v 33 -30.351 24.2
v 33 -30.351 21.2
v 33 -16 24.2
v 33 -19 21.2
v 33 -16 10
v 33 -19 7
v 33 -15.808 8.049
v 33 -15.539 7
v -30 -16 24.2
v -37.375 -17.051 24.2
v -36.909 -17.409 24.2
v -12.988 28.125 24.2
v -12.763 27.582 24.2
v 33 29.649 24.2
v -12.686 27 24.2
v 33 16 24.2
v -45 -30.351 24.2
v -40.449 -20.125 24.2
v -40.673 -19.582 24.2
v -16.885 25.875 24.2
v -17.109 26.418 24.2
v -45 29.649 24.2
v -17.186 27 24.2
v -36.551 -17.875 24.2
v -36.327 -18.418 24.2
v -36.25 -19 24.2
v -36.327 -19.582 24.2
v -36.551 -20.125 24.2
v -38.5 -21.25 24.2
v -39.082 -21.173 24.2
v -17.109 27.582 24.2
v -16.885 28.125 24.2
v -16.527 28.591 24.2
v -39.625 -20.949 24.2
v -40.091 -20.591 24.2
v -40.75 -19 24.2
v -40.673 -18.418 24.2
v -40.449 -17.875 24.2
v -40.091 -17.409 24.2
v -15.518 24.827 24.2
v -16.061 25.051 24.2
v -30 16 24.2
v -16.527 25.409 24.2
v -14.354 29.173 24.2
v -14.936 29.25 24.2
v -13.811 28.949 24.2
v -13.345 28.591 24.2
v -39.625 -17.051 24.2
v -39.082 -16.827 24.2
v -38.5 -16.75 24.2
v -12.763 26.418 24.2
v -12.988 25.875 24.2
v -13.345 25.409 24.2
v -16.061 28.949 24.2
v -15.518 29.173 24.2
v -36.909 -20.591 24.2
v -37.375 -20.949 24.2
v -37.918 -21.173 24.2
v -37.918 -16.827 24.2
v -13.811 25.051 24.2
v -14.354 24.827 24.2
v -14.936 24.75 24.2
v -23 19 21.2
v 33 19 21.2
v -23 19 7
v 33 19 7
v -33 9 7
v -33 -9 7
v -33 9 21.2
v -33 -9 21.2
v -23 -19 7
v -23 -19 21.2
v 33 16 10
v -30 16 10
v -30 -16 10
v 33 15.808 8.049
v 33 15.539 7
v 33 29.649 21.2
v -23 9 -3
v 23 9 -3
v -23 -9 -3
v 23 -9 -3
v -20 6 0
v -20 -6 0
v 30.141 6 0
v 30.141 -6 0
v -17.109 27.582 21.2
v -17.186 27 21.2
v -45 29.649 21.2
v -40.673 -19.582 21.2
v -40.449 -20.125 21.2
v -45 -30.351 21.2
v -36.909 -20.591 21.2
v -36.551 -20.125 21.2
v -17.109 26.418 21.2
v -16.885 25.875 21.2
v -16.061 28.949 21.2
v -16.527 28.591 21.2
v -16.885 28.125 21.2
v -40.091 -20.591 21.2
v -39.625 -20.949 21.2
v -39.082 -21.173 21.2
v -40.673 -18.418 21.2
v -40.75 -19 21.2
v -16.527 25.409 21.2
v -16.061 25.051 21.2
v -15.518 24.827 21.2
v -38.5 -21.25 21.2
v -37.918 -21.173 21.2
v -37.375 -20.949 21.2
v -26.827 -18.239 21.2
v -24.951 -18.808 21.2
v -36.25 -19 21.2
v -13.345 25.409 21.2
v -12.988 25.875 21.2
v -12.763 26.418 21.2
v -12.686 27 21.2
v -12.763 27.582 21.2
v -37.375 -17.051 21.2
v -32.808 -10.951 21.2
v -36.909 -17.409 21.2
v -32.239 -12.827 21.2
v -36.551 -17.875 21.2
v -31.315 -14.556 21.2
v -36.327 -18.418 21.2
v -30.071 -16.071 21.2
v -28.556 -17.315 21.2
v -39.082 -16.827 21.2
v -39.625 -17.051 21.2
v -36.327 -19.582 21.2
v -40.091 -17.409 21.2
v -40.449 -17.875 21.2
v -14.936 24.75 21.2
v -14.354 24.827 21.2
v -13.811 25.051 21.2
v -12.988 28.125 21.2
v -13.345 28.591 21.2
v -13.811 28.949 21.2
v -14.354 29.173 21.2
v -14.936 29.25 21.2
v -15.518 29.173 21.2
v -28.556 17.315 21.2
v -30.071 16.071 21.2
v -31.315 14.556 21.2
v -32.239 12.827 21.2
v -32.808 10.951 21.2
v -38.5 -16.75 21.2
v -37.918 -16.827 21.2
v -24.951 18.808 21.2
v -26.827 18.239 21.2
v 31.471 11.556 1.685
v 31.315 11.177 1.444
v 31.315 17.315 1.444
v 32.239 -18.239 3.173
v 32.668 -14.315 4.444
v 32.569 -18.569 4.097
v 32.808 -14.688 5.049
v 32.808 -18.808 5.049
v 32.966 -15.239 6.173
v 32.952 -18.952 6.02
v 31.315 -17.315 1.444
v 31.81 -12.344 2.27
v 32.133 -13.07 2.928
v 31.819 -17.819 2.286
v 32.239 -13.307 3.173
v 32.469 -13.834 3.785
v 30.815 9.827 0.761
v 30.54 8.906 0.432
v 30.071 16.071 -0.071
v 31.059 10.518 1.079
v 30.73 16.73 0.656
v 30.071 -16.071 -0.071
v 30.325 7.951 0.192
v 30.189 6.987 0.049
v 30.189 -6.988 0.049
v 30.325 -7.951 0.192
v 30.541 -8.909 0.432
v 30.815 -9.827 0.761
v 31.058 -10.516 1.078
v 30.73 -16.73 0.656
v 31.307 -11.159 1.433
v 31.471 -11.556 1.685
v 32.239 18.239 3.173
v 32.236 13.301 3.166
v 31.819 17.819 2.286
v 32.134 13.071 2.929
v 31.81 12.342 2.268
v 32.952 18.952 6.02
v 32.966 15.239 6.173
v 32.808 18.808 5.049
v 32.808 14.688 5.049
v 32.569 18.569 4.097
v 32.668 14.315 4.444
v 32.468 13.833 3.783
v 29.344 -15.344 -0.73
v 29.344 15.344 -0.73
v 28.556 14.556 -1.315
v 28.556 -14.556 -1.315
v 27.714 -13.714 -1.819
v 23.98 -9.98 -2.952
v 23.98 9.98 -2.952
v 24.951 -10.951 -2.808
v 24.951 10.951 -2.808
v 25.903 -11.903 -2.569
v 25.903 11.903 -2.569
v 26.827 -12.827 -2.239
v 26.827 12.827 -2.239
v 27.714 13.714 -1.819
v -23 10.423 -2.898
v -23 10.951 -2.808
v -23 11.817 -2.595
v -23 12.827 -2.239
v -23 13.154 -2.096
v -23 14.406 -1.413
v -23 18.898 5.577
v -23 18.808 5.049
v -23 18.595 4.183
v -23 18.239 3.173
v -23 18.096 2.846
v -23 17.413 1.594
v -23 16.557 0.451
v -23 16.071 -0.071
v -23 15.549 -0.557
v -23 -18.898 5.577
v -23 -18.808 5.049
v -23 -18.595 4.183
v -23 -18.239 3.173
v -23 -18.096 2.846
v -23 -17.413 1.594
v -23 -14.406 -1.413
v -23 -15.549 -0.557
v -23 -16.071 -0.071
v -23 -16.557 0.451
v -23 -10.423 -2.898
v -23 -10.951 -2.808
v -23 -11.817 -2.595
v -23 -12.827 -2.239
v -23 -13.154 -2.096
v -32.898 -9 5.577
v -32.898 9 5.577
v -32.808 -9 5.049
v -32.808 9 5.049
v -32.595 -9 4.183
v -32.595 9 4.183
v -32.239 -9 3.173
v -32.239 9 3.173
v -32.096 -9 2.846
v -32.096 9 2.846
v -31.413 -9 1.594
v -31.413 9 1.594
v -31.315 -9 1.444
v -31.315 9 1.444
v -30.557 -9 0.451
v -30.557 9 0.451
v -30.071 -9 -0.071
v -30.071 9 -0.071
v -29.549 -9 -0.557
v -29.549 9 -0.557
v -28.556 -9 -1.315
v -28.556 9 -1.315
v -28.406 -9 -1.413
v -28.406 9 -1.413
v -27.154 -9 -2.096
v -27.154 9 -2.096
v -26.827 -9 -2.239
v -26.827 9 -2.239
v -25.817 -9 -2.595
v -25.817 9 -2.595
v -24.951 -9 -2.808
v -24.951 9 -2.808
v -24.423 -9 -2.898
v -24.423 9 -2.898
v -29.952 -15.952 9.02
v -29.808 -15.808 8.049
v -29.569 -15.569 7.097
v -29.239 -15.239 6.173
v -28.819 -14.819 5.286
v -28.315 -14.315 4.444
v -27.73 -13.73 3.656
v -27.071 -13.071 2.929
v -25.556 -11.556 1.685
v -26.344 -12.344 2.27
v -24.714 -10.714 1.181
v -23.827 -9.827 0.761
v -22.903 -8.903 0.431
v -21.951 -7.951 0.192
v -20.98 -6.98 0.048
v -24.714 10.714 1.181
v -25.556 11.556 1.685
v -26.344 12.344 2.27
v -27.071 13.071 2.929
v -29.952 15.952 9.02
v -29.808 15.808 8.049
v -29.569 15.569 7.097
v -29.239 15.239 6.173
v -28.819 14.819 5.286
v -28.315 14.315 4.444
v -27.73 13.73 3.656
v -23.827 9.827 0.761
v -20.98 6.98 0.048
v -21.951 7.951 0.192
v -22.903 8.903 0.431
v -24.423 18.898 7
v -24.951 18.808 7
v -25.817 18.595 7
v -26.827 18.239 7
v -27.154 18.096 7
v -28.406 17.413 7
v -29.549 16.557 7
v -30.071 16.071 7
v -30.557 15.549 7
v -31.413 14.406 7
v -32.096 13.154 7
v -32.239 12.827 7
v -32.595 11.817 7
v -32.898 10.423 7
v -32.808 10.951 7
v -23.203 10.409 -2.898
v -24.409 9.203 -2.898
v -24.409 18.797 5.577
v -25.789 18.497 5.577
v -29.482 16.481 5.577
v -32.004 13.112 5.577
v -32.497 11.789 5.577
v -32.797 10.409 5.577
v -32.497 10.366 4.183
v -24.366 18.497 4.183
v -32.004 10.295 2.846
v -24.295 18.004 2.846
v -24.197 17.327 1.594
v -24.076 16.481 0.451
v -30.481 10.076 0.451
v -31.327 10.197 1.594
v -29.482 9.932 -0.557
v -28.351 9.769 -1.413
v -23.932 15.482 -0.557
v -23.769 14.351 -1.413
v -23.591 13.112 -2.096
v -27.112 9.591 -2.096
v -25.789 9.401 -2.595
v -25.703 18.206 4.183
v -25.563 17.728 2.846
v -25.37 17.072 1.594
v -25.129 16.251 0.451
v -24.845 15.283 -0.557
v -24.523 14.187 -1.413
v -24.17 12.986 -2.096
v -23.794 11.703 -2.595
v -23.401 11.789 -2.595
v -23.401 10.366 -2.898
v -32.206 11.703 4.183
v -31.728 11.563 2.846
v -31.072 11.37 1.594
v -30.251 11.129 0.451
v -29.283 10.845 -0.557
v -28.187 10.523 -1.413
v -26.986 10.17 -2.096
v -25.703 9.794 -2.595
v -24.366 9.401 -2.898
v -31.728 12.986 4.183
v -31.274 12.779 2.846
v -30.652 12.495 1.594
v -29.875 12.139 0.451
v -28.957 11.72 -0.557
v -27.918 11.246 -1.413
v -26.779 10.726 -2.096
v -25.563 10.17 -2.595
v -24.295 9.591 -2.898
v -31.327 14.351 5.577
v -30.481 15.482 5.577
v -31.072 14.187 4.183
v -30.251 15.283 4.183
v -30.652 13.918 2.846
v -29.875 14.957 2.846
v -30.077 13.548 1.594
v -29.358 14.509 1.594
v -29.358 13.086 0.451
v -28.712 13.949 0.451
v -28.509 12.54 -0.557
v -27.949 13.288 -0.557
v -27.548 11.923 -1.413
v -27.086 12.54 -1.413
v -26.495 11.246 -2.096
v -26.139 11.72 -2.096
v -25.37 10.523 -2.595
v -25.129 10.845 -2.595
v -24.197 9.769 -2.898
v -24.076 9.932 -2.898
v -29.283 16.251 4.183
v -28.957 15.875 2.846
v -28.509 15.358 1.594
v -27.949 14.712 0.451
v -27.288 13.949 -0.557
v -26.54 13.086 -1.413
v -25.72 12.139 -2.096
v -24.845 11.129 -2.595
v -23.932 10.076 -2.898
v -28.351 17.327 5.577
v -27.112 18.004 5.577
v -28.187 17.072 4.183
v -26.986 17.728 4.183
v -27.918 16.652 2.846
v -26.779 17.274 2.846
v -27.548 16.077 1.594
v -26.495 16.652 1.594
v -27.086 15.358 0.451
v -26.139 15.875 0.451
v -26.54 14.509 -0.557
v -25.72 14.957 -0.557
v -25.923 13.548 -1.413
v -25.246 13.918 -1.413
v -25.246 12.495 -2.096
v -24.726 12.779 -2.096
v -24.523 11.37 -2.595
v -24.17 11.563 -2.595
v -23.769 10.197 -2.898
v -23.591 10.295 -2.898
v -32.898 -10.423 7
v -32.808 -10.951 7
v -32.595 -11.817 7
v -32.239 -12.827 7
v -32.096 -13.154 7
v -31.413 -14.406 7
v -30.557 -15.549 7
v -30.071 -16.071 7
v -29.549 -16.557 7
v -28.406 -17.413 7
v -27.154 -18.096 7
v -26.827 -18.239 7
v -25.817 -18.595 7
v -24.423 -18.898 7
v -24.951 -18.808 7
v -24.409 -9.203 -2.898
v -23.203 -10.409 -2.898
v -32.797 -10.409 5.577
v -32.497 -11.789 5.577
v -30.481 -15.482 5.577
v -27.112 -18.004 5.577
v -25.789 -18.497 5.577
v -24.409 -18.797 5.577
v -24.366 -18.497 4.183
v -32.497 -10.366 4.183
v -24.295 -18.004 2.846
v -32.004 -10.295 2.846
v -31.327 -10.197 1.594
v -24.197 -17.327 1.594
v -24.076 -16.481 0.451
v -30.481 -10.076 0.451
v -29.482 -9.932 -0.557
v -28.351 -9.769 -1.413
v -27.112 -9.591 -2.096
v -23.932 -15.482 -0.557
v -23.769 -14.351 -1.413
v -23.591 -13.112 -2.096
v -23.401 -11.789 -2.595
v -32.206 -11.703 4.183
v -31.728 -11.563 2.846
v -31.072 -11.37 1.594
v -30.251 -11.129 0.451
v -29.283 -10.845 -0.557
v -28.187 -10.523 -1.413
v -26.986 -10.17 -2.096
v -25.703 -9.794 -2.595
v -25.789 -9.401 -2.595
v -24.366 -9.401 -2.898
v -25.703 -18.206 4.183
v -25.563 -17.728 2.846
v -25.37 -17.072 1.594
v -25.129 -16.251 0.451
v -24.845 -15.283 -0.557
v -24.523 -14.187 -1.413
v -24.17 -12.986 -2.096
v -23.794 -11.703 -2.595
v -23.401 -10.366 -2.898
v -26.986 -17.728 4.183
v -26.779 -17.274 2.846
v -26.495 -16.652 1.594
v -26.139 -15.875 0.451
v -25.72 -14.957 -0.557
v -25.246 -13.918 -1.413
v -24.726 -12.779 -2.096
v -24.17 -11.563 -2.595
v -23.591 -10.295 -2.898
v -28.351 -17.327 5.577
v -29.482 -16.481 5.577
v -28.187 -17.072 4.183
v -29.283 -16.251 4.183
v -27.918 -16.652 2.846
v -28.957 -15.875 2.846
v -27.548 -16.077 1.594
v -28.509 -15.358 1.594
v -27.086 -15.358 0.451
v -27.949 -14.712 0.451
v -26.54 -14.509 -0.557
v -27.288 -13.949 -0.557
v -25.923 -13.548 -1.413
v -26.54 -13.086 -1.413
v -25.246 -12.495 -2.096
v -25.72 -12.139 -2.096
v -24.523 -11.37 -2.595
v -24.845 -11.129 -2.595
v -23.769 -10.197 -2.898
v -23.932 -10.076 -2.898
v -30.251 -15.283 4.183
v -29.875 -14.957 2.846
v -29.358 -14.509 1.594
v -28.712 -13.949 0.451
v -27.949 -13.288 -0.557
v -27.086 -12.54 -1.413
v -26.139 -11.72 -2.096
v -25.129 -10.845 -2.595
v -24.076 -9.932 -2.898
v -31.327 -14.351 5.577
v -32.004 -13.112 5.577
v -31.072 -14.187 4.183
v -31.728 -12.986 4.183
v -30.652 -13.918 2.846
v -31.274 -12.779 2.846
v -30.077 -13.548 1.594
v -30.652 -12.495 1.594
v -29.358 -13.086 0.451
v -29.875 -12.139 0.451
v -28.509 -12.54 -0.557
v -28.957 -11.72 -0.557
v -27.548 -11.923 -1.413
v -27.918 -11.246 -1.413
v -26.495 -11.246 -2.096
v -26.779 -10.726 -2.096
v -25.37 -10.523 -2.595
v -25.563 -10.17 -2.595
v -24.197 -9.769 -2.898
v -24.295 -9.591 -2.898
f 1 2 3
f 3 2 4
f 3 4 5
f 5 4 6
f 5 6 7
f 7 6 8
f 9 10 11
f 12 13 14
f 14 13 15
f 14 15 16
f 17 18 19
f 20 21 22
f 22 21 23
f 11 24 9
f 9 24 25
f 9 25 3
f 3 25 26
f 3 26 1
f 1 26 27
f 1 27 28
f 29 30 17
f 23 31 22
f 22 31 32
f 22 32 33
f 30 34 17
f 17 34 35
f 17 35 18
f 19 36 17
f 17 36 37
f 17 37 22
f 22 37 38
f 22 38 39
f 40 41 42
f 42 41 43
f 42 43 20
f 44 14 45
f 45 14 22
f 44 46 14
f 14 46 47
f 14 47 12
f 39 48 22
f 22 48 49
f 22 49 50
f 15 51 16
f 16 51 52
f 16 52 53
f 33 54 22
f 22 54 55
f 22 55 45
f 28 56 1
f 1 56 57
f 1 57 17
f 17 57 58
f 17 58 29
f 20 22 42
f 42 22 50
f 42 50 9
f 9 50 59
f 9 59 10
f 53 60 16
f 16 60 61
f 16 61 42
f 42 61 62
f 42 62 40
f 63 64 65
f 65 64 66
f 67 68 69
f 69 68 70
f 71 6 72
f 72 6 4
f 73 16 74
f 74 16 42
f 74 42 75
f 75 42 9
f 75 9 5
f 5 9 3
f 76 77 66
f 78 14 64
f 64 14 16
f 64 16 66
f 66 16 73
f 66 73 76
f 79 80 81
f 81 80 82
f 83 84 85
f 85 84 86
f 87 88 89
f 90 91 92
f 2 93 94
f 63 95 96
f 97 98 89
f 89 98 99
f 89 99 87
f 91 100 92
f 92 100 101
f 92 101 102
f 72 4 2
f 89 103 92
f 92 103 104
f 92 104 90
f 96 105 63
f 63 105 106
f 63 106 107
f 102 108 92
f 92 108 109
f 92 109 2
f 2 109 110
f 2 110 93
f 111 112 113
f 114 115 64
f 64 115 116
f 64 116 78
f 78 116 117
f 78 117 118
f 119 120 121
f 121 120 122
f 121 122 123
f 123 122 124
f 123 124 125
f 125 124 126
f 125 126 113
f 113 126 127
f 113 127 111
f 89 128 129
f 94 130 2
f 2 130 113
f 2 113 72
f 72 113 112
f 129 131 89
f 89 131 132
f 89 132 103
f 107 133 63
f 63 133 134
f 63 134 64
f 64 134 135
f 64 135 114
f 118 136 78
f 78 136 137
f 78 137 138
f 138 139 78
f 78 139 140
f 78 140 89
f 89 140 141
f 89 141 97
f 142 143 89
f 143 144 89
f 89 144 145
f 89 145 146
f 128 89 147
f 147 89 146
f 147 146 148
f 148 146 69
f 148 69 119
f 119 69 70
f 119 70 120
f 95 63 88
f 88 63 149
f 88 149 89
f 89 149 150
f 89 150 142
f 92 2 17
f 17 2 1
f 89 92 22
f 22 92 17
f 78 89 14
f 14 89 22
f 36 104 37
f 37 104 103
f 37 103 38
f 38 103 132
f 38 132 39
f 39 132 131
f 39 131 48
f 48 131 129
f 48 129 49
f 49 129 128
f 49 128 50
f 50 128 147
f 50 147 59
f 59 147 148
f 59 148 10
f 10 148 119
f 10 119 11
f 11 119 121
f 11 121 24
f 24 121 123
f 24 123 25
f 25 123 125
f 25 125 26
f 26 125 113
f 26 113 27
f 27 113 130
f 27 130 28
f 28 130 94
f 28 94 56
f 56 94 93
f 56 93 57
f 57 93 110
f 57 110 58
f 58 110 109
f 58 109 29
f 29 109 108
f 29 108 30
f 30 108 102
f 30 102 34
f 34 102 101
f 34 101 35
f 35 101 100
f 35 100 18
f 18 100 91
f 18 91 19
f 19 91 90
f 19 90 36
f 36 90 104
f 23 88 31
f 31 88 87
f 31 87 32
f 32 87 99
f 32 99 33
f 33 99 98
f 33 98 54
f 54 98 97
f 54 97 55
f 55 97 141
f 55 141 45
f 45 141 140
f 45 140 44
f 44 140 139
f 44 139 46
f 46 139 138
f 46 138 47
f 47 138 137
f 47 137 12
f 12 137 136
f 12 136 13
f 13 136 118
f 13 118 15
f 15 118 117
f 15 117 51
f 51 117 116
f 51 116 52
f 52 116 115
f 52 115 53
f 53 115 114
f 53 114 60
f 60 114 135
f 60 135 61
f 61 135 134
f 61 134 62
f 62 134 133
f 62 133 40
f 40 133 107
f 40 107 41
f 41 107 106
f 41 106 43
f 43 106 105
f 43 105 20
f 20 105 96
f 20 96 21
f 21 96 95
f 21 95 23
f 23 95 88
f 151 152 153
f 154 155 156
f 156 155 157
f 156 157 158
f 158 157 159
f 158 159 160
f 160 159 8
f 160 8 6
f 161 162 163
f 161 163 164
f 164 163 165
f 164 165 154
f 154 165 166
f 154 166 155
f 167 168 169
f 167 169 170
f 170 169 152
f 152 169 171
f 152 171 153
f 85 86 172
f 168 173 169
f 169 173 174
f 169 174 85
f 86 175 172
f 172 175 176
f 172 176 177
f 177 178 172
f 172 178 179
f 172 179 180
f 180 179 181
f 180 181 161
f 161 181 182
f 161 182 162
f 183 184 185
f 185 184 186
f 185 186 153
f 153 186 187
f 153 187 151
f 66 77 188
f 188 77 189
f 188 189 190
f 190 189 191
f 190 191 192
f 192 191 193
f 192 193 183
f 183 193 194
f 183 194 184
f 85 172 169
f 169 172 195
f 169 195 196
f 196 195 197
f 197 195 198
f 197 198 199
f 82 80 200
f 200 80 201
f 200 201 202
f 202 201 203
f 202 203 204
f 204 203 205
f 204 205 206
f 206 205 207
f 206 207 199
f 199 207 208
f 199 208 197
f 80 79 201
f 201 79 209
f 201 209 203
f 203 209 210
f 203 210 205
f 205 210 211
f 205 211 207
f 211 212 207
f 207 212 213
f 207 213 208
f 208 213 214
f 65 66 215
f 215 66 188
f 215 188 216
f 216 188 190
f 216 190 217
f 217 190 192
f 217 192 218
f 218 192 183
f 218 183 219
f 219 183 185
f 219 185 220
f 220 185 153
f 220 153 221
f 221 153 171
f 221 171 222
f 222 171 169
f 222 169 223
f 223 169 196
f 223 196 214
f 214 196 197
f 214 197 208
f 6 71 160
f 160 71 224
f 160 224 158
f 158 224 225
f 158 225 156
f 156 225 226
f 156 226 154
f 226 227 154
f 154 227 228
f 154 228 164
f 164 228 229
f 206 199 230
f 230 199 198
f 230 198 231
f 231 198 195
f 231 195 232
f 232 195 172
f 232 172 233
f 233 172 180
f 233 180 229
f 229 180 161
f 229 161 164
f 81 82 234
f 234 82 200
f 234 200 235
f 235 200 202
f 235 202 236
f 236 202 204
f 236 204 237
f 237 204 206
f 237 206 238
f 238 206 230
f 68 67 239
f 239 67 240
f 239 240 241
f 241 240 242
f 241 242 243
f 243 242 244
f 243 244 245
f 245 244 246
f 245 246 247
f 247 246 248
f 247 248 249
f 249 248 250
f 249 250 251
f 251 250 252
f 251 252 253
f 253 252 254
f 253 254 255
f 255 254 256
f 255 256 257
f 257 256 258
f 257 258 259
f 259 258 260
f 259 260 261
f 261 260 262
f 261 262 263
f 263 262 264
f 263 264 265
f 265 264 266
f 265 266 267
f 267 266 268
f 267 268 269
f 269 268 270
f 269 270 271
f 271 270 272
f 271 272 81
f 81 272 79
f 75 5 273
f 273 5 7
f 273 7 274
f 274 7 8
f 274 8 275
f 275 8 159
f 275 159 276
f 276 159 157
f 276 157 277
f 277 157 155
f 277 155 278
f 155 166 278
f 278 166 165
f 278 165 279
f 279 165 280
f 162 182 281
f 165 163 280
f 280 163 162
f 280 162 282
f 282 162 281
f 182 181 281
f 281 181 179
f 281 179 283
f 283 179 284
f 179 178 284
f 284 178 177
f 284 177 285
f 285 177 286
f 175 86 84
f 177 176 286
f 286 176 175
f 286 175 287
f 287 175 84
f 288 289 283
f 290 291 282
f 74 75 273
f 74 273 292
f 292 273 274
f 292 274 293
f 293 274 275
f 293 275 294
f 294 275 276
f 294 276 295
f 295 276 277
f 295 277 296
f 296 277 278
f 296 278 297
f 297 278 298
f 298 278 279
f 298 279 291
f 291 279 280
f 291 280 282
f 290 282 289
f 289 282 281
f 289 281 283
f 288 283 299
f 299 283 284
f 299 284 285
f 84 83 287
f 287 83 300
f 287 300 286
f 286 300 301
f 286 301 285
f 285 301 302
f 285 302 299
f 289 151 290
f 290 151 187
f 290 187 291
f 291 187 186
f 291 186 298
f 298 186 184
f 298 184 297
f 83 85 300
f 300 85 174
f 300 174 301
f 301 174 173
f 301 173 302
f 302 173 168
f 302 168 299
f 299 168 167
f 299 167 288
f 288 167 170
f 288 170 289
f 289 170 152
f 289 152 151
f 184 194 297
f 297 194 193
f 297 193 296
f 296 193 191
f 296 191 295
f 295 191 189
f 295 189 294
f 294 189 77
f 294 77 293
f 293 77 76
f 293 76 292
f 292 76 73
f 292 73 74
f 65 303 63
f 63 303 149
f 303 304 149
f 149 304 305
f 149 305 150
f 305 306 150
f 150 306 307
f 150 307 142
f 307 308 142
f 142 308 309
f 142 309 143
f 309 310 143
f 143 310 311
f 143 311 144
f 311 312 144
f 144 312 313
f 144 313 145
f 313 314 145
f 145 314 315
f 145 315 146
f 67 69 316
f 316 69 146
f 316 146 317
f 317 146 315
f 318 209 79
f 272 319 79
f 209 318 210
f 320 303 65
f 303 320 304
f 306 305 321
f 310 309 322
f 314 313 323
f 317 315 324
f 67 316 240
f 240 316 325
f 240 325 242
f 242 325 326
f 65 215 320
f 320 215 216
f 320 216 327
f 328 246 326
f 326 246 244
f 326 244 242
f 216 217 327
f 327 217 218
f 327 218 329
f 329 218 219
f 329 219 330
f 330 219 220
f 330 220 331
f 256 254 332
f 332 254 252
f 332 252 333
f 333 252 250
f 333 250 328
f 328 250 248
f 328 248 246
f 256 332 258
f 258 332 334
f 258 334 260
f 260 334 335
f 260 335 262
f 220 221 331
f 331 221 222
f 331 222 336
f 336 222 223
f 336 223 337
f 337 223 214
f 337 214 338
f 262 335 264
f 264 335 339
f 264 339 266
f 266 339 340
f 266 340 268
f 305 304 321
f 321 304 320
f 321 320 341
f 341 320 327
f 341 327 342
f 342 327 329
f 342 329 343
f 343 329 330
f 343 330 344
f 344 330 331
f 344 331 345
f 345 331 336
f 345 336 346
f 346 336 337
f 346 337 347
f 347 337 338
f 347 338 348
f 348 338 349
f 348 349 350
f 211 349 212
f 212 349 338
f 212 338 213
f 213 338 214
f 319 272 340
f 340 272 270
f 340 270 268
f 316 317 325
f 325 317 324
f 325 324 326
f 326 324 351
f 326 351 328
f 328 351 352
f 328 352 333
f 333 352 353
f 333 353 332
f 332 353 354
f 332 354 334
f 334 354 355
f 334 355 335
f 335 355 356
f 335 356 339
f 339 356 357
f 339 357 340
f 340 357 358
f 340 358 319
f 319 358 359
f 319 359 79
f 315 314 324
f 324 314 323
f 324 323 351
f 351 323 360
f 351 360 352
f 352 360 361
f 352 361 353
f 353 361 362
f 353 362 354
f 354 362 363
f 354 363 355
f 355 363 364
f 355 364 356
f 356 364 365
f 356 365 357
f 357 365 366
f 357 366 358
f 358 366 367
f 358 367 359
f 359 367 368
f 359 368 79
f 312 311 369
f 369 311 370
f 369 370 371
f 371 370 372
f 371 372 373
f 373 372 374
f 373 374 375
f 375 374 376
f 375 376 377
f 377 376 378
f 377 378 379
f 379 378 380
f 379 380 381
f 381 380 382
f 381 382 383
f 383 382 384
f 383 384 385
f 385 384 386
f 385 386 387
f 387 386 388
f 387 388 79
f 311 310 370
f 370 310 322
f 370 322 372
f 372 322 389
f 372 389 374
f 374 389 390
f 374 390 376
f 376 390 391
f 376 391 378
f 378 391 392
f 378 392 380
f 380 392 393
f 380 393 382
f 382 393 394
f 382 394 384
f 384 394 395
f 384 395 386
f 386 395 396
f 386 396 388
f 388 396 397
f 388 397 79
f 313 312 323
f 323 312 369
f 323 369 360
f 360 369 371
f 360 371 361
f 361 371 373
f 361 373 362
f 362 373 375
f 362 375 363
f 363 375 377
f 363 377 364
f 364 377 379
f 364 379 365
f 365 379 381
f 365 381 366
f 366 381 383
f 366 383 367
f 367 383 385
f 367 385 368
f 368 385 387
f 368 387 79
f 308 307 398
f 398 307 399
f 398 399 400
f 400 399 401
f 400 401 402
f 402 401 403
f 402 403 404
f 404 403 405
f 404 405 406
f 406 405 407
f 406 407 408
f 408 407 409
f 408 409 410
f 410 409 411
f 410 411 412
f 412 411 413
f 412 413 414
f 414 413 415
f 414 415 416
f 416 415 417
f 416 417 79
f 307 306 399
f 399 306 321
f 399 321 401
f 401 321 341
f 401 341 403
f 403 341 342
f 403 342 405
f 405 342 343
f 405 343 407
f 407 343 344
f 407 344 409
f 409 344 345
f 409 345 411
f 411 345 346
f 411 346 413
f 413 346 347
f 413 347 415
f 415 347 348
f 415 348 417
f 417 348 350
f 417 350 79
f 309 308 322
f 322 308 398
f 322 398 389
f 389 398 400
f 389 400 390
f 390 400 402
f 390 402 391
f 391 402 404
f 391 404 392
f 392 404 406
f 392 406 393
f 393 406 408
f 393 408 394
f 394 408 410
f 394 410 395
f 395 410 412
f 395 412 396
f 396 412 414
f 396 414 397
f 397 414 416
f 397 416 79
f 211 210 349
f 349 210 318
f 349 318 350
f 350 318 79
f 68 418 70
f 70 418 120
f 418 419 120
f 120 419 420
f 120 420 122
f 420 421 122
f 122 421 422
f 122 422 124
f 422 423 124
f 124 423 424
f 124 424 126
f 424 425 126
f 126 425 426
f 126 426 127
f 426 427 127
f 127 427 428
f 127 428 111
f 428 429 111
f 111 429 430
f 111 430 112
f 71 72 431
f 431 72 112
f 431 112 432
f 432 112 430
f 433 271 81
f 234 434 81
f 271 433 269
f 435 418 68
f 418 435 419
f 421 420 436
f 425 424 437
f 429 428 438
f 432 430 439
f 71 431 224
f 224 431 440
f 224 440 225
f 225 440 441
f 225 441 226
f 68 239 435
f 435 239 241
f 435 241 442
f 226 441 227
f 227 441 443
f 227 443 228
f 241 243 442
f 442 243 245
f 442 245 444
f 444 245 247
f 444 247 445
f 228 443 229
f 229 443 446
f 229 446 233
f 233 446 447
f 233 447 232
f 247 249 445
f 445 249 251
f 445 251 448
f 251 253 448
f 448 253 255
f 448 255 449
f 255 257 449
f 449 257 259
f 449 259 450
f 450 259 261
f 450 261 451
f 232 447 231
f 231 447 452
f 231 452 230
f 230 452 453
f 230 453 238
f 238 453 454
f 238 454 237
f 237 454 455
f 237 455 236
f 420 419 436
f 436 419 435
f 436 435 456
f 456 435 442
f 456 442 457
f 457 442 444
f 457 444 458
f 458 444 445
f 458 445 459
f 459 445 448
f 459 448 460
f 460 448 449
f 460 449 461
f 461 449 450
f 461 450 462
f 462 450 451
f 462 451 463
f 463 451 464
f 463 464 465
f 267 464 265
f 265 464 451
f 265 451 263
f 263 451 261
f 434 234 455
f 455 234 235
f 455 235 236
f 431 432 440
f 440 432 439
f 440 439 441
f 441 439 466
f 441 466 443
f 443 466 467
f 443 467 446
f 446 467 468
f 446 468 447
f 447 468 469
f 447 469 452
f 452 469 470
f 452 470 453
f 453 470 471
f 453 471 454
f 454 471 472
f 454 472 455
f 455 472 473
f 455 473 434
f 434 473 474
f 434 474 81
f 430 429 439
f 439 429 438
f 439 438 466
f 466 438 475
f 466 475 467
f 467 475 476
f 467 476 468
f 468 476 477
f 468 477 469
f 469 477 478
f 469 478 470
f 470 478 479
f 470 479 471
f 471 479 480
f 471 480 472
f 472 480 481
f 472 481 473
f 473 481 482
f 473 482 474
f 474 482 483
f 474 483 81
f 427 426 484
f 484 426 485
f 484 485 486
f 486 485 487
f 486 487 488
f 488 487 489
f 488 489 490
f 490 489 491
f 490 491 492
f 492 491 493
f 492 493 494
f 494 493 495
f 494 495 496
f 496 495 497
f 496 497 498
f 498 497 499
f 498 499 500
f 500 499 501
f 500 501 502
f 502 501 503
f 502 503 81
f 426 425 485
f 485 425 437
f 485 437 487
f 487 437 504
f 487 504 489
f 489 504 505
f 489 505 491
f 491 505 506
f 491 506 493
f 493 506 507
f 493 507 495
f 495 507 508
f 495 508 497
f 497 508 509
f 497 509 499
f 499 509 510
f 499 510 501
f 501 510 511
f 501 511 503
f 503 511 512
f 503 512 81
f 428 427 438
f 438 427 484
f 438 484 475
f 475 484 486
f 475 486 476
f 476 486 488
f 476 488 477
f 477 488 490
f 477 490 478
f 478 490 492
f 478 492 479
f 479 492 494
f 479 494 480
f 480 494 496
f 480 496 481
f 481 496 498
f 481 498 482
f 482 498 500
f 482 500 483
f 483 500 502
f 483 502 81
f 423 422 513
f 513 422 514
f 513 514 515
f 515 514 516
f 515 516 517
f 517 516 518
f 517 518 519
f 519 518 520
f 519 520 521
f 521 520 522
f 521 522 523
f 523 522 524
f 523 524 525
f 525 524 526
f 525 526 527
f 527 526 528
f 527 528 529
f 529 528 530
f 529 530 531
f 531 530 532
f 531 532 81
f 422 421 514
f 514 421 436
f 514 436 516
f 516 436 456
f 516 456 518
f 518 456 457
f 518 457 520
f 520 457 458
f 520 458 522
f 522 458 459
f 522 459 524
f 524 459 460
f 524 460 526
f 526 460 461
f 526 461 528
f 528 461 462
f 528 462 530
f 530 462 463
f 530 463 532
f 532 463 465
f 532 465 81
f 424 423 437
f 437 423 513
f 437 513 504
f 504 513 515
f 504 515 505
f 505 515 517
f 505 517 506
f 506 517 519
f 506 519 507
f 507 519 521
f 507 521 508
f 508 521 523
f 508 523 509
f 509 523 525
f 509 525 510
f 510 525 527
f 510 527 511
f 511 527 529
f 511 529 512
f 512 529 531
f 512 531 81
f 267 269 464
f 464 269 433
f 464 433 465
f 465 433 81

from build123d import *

# Parameters (mm, degrees)
SKETCH1_W           = 32
SKETCH1_H           = 60
BOSS_EXTRUDE1_DEPTH = 24.2
SHELL1_T            = 3
SKETCH3_W           = 3
SKETCH3_H           = 32
CUT_EXTRUDE1_DEPTH  = 24.2
BOSS_EXTRUDE2_START = 24.2
SKETCH4_W           = 60
SKETCH4_H           = 78
BOSS_EXTRUDE2_DEPTH = 3
CUT_EXTRUDE2_DEPTH  = 3
SKETCH6_R           = 2.25
CUT_EXTRUDE3_DEPTH  = 3
FILLET2_R           = 10
FILLET3_R           = 10
FILLET4_R           = 10


with BuildPart() as part:
    # Sketch1 → Boss-Extrude1 (new body)
    with BuildSketch(Plane(origin=(0, 0, 0), x_dir=(0, 1, 0), z_dir=(0, 0, 1))):
        Rectangle(SKETCH1_W, SKETCH1_H)
    extrude(amount=BOSS_EXTRUDE1_DEPTH)

    # Shell1
    shell1_openings = [part.faces().sort_by_distance(p)[0] for p in [
        (0, 0, 24.2),
    ]]
    offset(amount=SHELL1_T, openings=shell1_openings, kind=Kind.INTERSECTION)

    # Sketch3 → Cut-Extrude1 (cut)
    with BuildSketch(Plane.XY.offset(24.2)):
        with Locations((31.5, 0)):
            Rectangle(SKETCH3_W, SKETCH3_H)
    extrude(amount=-CUT_EXTRUDE1_DEPTH, mode=Mode.SUBTRACT)

    # Sketch4 → Boss-Extrude2 (add)
    with BuildSketch(Plane(origin=(0, 0, 0), x_dir=(0, 1, 0), z_dir=(0, 0, 1)).offset(BOSS_EXTRUDE2_START)):
        with Locations((-0.351117191, 6)):
            Rectangle(SKETCH4_W, SKETCH4_H)
    extrude(amount=-BOSS_EXTRUDE2_DEPTH)

    # Sketch5 → Cut-Extrude2 (cut)
    with BuildSketch(Plane.XY.offset(24.2)):
        Polygon((-30, -16), (30, -16), (33, -16), (33, -32.34351268), (43.583685091, -32.34351268), (43.583685091, 31.729117596), (33, 31.729117596), (33, 16), (30, 16), (-30, 16), align=None)
    extrude(amount=-CUT_EXTRUDE2_DEPTH, mode=Mode.SUBTRACT)

    # Sketch6 → Cut-Extrude3 (cut)
    with BuildSketch(Plane(origin=(0, 0, 21.2), x_dir=(1, 0, 0), z_dir=(0, 0, -1))):
        with Locations(Location((-14.936067977, -27, 0), (0, 0, 180))):
            Circle(SKETCH6_R)
        with Locations(Location((-38.5, 19, 0), (0, 0, 180))):
            Circle(SKETCH6_R)
    extrude(amount=-CUT_EXTRUDE3_DEPTH, mode=Mode.SUBTRACT)

    # Fillet2
    # the kernel refuses this fillet: 10 mm, written as the material it takes off along each edge
    with BuildSketch(Plane(origin=(-33, 44, -3), x_dir=(1, 0, 0), z_dir=(0, -1, 0))) as fillet2_piece_1:
        with BuildLine():
            CenterArc((FILLET2_R, FILLET2_R), FILLET2_R, 180, 90)
            Line((0, FILLET2_R), (0, 0))
            Line((0, 0), (FILLET2_R, 0))
        make_face()
    extrude(amount=88, mode=Mode.SUBTRACT)
    with BuildSketch(Plane(origin=(-58, -19, -3), x_dir=(0, 0, 1), z_dir=(1, 0, 0)), Plane(origin=(58, 19, -3), x_dir=(0, 0, 1), z_dir=(-1, 0, 0))) as fillet2_piece_2:
        with BuildLine():
            CenterArc((FILLET2_R, -FILLET2_R), FILLET2_R, 90, 90)
            Line((0, -FILLET2_R), (0, 0))
            Line((0, 0), (FILLET2_R, 0))
        make_face()
    extrude(amount=116, mode=Mode.SUBTRACT)
    with BuildSketch(Plane(origin=(33, -44, -3), x_dir=(0, 0, 1), z_dir=(0, 1, 0))) as fillet2_piece_3:
        with BuildLine():
            CenterArc((FILLET2_R, -FILLET2_R), FILLET2_R, 90, 90)
            Line((0, -FILLET2_R), (0, 0))
            Line((0, 0), (FILLET2_R, 0))
        make_face()
    extrude(amount=88, mode=Mode.SUBTRACT)

    # Fillet3
    fillet3_edges = [part.edges().sort_by_distance(p)[0] for p in [
        (0.070714214, 16, 0),
        (-30, 0, 0),
        (0.070714214, -16, 0),
    ]]
    fillet(fillet3_edges, radius=FILLET3_R)

    # Fillet4
    # the kernel refuses this fillet: 10 mm, written as the material it takes off along each edge
    with BuildSketch(Plane(origin=(-23, 9, 7), x_dir=(0, 1, 0), z_dir=(-1, 0, 0))) as fillet4_piece_1_section:
        Polygon((0, 0), (FILLET4_R * 1.02, 0), (FILLET4_R * 1.02, FILLET4_R * 1.02), (0, FILLET4_R * 1.02), align=None)
    fillet4_piece_1 = extrude(amount=FILLET4_R * 1.02, mode=Mode.PRIVATE)
    fillet4_piece_1 = fillet4_piece_1 - Plane(origin=(-23, 9, 7), x_dir=(0, -0.7071067811865475, 0.7071067811865475), z_dir=(-1, 0, 0)) * Sphere(FILLET4_R, mode=Mode.PRIVATE)
    add(fillet4_piece_1, mode=Mode.SUBTRACT)
    with BuildSketch(Plane(origin=(-23, -9, 7), x_dir=(-1, 0, 0), z_dir=(0, -1, 0))) as fillet4_piece_2_section:
        Polygon((0, 0), (FILLET4_R * 1.02, 0), (FILLET4_R * 1.02, FILLET4_R * 1.02), (0, FILLET4_R * 1.02), align=None)
    fillet4_piece_2 = extrude(amount=FILLET4_R * 1.02, mode=Mode.PRIVATE)
    fillet4_piece_2 = fillet4_piece_2 - Plane(origin=(-23, -9, 7), x_dir=(0.7071067811865475, 0, 0.7071067811865475), z_dir=(0, -1, 0)) * Sphere(FILLET4_R, mode=Mode.PRIVATE)
    add(fillet4_piece_2, mode=Mode.SUBTRACT)
    with BuildSketch(Plane(origin=(-33, -19, 7), x_dir=(1, 0, 0), z_dir=(0, 0, 1)), Plane(origin=(-33, 19, 7), x_dir=(0, -1, 0), z_dir=(0, 0, 1))) as fillet4_piece_3:
        with BuildLine():
            CenterArc((FILLET4_R, FILLET4_R), FILLET4_R, 180, 90)
            Line((0, FILLET4_R), (0, 0))
            Line((0, 0), (FILLET4_R, 0))
        make_face()
    extrude(amount=14.2, mode=Mode.SUBTRACT)


solid = part.part
